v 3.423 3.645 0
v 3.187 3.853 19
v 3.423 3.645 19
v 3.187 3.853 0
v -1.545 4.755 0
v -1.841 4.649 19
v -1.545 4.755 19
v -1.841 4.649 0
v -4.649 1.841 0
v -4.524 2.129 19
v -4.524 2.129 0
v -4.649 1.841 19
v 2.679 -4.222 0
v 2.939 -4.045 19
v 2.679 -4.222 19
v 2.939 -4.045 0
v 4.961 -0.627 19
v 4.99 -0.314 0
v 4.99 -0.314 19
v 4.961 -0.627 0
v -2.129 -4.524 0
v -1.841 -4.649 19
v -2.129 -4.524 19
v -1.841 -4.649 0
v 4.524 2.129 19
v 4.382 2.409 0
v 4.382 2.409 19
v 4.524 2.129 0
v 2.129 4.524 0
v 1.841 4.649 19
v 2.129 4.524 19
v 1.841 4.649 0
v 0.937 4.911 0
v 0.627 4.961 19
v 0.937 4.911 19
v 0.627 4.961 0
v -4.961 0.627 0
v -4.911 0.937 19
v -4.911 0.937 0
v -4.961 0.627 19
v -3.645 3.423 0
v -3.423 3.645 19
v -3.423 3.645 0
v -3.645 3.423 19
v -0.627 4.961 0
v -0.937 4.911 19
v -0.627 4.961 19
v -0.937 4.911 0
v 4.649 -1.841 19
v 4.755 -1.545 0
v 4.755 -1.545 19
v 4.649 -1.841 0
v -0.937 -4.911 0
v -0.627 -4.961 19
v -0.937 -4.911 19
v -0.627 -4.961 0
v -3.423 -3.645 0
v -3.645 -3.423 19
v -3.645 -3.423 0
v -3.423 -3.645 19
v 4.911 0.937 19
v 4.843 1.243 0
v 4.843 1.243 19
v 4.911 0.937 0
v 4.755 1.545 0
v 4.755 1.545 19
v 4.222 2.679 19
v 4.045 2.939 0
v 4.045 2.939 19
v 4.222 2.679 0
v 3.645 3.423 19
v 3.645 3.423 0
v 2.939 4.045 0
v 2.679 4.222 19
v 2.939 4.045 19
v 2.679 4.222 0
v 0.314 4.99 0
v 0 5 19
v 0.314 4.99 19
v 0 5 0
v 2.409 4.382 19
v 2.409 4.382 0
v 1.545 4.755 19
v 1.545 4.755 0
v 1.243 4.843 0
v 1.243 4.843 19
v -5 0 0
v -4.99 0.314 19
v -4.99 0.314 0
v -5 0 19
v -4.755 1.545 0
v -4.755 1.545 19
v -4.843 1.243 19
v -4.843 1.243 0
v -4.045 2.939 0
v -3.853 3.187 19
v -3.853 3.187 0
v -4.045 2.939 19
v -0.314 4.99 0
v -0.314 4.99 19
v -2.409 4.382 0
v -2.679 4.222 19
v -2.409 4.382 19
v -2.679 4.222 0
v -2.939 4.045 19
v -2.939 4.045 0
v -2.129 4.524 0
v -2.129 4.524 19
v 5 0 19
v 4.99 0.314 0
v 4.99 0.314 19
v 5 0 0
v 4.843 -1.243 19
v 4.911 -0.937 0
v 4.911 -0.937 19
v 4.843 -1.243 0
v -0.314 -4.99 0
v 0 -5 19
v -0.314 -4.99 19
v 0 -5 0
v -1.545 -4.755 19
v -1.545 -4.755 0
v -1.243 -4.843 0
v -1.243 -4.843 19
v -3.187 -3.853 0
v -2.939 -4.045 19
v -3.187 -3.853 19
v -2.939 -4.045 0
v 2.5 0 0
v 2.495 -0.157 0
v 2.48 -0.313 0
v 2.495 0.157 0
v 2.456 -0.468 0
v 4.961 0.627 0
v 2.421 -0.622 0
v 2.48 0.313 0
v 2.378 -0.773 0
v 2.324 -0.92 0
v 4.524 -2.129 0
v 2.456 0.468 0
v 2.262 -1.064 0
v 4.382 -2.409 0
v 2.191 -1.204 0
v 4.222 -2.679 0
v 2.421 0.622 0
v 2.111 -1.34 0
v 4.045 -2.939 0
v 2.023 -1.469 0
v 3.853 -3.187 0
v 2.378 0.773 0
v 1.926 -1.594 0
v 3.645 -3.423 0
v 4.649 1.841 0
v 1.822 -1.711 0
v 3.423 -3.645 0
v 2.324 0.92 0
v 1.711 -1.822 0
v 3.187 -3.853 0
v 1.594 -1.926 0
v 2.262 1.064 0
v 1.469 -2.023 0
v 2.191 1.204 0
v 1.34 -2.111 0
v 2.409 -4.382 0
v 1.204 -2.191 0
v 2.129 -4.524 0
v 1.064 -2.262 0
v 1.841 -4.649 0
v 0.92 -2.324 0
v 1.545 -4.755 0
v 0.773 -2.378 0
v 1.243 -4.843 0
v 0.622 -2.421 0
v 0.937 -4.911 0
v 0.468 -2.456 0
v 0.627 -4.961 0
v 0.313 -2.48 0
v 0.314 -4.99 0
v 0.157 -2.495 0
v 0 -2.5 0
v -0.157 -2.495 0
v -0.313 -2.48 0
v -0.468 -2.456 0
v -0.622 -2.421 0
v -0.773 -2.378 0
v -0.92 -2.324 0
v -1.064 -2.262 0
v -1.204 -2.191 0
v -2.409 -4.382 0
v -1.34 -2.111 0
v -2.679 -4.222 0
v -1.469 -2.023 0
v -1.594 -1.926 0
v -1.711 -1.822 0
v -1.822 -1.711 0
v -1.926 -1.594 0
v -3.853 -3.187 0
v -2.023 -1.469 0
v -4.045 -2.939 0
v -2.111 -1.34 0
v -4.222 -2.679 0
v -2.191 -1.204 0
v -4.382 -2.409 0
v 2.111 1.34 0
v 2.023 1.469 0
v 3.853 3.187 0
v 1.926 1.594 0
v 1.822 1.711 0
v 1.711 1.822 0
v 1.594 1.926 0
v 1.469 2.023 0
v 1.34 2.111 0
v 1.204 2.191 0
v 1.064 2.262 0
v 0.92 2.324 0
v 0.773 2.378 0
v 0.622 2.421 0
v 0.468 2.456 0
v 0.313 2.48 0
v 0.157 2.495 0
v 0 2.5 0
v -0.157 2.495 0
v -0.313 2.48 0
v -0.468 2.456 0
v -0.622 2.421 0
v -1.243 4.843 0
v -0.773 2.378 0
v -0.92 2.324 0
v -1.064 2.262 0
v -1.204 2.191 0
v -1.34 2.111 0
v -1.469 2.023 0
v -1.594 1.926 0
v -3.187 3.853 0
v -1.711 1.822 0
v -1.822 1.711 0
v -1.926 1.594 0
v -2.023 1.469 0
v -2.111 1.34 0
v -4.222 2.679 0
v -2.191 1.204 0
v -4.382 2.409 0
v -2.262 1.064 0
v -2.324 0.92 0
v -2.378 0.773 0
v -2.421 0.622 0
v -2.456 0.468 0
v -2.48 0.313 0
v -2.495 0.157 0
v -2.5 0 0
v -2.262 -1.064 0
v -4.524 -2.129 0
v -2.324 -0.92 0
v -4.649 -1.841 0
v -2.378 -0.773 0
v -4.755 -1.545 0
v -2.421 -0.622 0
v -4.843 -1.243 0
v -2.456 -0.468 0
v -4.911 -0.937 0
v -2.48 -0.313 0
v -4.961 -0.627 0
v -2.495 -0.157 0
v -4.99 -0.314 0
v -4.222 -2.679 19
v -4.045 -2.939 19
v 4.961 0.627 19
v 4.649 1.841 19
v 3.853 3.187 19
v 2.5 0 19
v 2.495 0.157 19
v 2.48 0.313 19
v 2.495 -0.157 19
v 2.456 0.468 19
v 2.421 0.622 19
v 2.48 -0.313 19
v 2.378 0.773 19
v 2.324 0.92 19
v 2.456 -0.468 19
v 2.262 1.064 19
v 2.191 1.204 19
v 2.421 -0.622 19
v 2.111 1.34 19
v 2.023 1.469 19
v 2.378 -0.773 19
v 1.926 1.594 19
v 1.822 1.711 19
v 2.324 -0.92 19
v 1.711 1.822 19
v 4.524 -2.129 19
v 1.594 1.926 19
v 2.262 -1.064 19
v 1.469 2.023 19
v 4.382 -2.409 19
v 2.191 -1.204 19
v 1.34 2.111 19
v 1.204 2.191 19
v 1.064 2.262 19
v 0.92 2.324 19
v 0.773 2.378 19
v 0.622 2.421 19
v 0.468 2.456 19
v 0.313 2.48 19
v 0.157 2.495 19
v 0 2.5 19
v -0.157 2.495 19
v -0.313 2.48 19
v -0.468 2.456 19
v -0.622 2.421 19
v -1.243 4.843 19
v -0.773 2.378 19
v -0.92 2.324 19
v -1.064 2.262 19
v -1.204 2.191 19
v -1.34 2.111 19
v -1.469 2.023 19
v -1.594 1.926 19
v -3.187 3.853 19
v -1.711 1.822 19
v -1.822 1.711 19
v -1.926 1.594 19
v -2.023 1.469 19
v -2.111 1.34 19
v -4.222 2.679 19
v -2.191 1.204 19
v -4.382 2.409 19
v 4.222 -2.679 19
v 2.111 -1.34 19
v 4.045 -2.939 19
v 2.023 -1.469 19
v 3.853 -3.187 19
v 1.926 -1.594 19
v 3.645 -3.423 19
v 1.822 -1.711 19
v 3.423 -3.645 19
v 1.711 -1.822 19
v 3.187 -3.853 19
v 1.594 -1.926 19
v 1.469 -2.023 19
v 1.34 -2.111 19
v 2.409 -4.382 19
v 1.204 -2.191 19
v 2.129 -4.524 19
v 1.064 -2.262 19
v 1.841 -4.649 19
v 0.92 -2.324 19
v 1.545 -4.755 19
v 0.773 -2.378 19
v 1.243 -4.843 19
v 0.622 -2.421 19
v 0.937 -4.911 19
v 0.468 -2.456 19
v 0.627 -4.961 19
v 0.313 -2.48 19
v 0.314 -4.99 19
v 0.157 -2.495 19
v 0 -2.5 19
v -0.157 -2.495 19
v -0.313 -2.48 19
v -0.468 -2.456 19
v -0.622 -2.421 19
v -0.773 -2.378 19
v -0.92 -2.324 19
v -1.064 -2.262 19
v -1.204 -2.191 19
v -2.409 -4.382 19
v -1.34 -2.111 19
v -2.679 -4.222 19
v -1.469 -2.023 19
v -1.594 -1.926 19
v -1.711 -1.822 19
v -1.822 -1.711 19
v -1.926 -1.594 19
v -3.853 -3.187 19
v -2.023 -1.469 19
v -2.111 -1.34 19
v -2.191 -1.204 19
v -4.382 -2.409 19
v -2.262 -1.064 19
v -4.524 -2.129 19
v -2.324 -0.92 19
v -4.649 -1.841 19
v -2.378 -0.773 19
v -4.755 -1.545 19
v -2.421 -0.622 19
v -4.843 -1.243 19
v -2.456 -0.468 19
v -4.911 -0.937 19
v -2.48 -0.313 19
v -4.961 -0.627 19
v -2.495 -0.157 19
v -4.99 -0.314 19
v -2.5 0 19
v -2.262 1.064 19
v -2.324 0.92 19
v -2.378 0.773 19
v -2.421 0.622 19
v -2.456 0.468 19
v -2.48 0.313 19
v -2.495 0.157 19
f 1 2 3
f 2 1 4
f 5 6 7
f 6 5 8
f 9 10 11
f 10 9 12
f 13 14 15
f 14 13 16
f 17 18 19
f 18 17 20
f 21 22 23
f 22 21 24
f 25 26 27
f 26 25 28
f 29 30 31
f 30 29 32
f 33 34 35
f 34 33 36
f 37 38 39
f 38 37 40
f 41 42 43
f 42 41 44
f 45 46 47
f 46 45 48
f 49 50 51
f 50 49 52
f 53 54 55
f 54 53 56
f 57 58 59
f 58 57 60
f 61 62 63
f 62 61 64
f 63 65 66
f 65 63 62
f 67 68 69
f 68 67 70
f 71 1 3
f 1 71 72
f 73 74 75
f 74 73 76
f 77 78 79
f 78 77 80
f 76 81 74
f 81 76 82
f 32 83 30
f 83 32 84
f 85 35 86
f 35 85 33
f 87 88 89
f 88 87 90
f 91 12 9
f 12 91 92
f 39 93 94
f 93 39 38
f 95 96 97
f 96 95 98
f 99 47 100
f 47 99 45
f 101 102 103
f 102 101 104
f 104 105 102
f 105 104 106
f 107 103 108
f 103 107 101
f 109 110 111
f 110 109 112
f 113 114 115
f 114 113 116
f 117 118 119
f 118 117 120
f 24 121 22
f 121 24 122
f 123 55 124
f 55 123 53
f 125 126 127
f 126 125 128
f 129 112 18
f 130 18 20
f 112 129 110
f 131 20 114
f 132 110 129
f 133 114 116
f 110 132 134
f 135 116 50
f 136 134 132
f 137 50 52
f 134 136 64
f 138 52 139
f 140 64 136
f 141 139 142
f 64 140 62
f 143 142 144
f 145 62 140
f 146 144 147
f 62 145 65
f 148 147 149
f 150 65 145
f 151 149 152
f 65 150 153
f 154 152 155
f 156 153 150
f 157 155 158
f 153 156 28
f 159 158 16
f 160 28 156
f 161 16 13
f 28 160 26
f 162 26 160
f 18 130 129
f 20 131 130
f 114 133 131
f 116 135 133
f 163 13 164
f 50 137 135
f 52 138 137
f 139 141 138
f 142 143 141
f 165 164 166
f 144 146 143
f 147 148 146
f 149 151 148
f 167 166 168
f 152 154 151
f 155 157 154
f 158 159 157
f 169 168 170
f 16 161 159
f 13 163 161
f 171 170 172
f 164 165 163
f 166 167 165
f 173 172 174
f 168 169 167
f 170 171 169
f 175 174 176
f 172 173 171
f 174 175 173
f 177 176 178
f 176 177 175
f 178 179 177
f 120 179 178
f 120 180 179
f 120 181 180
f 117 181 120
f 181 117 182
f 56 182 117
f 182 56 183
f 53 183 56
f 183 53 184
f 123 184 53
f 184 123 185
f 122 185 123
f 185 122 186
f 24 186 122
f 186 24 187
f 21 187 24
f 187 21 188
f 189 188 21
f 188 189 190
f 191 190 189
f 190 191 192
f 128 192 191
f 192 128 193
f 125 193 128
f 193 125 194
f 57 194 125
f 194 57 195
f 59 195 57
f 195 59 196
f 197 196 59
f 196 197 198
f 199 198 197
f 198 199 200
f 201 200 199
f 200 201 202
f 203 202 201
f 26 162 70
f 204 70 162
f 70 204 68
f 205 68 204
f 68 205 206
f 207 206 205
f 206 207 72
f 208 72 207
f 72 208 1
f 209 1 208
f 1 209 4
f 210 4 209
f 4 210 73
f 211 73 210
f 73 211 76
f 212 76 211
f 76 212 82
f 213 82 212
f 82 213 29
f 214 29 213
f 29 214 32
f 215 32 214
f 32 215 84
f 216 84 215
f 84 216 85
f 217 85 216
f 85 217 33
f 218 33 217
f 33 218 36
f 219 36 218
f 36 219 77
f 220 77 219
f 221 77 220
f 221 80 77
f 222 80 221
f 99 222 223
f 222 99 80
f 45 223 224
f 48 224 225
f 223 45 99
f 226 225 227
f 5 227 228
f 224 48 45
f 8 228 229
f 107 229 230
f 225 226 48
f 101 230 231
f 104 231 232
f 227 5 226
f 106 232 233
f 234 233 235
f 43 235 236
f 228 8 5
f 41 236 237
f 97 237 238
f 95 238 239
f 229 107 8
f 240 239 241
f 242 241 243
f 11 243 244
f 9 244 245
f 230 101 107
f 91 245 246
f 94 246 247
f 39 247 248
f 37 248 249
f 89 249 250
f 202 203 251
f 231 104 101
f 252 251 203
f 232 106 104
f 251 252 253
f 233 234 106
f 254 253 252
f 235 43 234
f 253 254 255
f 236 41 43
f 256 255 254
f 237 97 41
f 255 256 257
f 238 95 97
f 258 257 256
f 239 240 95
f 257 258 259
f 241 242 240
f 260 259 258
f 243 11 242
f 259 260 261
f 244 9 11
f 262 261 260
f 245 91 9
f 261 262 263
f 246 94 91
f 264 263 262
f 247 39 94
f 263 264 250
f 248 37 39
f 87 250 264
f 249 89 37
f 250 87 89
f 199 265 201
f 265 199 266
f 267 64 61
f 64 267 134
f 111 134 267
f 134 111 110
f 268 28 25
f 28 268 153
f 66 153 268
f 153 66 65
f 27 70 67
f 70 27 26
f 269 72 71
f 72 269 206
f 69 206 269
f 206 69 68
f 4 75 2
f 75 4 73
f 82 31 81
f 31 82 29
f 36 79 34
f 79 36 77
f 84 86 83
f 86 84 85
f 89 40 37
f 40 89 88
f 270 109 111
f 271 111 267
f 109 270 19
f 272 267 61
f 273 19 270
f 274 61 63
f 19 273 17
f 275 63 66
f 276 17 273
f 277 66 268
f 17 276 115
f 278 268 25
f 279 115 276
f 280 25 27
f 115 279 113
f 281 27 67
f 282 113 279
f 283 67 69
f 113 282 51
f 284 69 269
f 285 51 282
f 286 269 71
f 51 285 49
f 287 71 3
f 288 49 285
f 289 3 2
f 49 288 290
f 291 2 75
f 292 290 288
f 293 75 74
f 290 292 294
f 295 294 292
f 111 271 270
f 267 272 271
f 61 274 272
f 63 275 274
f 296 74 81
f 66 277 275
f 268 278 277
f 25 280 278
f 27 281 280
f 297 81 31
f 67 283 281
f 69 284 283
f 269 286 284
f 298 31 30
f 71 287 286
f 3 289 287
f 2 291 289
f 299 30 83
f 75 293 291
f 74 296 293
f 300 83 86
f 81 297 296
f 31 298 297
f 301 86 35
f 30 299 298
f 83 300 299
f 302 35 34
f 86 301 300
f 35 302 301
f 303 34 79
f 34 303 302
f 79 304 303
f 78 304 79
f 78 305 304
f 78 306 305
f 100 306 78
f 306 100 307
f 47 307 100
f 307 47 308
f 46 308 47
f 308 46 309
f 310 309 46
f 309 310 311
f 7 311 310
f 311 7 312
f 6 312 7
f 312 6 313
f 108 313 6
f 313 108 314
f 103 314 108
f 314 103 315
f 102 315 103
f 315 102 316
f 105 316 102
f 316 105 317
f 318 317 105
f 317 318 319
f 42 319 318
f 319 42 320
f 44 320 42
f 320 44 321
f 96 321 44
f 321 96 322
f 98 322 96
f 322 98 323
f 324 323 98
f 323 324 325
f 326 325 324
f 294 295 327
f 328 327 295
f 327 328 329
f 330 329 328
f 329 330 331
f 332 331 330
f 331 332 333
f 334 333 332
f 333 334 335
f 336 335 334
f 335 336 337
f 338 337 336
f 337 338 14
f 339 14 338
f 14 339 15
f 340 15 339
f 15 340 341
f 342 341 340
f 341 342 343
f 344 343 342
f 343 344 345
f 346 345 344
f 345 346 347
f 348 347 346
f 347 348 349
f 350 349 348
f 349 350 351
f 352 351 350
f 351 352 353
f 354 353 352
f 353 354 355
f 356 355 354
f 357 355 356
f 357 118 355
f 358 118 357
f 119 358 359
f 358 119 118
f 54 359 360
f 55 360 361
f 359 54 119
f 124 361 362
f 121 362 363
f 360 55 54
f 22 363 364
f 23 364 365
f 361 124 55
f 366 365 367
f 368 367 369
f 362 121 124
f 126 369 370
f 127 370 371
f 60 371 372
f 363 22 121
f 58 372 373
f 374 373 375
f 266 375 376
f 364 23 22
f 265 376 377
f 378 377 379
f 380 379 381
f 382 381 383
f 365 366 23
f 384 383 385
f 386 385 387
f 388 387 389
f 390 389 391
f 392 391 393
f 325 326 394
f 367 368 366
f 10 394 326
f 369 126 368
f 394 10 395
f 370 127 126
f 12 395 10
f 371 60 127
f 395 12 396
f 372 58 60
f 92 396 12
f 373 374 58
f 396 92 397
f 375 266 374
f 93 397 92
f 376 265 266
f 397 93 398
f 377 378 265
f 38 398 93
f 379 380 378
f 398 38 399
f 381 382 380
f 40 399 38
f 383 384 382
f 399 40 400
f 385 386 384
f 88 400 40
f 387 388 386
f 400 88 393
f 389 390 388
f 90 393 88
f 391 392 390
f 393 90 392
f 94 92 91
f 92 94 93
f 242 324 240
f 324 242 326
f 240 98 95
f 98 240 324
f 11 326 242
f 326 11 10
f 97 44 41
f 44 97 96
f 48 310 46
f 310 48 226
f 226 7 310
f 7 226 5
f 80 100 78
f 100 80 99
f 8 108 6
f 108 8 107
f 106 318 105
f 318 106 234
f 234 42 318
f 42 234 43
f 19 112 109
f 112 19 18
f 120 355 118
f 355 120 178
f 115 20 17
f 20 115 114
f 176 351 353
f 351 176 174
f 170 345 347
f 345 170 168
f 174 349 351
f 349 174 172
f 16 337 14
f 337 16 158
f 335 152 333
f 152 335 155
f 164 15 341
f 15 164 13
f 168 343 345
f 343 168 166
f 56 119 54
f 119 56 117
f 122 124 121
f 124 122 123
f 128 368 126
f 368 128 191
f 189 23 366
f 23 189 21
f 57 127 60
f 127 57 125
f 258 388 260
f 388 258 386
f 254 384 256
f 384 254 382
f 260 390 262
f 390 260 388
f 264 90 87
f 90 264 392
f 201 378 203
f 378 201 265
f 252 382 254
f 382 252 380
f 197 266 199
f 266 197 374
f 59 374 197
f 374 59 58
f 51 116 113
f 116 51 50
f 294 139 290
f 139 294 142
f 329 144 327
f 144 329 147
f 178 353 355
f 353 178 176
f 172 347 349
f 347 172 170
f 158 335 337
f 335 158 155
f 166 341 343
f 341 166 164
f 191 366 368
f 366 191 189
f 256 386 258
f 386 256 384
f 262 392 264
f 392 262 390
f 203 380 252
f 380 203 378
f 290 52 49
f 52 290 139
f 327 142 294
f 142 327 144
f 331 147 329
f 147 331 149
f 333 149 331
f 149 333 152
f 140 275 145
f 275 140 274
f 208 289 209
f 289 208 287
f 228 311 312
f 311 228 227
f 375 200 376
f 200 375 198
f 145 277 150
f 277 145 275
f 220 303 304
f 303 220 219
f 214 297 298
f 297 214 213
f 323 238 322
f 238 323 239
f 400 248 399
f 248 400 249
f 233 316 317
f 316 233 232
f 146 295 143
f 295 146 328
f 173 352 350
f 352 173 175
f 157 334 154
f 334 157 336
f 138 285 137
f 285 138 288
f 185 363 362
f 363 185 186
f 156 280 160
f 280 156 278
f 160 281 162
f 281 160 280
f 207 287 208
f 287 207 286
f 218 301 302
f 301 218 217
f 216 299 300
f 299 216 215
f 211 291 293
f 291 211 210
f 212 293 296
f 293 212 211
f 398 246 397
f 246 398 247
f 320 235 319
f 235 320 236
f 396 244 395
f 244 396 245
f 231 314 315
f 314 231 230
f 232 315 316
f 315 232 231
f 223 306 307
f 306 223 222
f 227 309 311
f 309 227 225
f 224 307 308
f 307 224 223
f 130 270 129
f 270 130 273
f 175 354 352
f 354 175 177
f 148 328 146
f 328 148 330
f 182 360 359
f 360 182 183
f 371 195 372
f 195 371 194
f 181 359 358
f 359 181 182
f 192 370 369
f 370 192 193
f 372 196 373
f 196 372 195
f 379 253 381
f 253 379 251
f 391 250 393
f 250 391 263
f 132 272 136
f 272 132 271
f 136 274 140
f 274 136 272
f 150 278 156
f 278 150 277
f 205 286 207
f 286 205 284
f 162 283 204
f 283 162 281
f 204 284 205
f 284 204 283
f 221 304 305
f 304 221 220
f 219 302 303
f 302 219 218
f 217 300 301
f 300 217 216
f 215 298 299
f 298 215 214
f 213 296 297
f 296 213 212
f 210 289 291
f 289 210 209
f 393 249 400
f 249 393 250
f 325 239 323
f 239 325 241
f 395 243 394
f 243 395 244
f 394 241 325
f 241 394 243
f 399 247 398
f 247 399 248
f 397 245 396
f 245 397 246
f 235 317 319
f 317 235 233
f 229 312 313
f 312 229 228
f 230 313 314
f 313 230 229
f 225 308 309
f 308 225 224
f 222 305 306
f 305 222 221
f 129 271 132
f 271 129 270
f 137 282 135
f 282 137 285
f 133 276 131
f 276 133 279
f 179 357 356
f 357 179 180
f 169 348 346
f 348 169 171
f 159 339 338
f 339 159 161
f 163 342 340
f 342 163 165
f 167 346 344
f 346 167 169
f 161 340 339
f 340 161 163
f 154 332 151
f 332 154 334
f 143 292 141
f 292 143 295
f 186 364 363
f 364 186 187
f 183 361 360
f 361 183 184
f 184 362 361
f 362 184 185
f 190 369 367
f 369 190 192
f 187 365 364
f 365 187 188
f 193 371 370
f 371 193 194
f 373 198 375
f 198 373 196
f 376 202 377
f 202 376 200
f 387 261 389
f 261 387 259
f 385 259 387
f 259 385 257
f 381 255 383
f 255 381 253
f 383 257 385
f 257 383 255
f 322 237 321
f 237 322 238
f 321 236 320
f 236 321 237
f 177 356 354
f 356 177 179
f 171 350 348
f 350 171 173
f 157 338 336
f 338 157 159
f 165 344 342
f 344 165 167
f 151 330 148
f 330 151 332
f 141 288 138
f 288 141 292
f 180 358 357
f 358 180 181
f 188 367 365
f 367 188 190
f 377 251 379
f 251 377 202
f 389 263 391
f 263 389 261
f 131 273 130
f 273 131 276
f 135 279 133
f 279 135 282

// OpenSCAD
$fn=100;
difference(){
cylinder(r=5,h=19);
translate([0,0,-1])
cylinder(r=2.5,h=22);
}
